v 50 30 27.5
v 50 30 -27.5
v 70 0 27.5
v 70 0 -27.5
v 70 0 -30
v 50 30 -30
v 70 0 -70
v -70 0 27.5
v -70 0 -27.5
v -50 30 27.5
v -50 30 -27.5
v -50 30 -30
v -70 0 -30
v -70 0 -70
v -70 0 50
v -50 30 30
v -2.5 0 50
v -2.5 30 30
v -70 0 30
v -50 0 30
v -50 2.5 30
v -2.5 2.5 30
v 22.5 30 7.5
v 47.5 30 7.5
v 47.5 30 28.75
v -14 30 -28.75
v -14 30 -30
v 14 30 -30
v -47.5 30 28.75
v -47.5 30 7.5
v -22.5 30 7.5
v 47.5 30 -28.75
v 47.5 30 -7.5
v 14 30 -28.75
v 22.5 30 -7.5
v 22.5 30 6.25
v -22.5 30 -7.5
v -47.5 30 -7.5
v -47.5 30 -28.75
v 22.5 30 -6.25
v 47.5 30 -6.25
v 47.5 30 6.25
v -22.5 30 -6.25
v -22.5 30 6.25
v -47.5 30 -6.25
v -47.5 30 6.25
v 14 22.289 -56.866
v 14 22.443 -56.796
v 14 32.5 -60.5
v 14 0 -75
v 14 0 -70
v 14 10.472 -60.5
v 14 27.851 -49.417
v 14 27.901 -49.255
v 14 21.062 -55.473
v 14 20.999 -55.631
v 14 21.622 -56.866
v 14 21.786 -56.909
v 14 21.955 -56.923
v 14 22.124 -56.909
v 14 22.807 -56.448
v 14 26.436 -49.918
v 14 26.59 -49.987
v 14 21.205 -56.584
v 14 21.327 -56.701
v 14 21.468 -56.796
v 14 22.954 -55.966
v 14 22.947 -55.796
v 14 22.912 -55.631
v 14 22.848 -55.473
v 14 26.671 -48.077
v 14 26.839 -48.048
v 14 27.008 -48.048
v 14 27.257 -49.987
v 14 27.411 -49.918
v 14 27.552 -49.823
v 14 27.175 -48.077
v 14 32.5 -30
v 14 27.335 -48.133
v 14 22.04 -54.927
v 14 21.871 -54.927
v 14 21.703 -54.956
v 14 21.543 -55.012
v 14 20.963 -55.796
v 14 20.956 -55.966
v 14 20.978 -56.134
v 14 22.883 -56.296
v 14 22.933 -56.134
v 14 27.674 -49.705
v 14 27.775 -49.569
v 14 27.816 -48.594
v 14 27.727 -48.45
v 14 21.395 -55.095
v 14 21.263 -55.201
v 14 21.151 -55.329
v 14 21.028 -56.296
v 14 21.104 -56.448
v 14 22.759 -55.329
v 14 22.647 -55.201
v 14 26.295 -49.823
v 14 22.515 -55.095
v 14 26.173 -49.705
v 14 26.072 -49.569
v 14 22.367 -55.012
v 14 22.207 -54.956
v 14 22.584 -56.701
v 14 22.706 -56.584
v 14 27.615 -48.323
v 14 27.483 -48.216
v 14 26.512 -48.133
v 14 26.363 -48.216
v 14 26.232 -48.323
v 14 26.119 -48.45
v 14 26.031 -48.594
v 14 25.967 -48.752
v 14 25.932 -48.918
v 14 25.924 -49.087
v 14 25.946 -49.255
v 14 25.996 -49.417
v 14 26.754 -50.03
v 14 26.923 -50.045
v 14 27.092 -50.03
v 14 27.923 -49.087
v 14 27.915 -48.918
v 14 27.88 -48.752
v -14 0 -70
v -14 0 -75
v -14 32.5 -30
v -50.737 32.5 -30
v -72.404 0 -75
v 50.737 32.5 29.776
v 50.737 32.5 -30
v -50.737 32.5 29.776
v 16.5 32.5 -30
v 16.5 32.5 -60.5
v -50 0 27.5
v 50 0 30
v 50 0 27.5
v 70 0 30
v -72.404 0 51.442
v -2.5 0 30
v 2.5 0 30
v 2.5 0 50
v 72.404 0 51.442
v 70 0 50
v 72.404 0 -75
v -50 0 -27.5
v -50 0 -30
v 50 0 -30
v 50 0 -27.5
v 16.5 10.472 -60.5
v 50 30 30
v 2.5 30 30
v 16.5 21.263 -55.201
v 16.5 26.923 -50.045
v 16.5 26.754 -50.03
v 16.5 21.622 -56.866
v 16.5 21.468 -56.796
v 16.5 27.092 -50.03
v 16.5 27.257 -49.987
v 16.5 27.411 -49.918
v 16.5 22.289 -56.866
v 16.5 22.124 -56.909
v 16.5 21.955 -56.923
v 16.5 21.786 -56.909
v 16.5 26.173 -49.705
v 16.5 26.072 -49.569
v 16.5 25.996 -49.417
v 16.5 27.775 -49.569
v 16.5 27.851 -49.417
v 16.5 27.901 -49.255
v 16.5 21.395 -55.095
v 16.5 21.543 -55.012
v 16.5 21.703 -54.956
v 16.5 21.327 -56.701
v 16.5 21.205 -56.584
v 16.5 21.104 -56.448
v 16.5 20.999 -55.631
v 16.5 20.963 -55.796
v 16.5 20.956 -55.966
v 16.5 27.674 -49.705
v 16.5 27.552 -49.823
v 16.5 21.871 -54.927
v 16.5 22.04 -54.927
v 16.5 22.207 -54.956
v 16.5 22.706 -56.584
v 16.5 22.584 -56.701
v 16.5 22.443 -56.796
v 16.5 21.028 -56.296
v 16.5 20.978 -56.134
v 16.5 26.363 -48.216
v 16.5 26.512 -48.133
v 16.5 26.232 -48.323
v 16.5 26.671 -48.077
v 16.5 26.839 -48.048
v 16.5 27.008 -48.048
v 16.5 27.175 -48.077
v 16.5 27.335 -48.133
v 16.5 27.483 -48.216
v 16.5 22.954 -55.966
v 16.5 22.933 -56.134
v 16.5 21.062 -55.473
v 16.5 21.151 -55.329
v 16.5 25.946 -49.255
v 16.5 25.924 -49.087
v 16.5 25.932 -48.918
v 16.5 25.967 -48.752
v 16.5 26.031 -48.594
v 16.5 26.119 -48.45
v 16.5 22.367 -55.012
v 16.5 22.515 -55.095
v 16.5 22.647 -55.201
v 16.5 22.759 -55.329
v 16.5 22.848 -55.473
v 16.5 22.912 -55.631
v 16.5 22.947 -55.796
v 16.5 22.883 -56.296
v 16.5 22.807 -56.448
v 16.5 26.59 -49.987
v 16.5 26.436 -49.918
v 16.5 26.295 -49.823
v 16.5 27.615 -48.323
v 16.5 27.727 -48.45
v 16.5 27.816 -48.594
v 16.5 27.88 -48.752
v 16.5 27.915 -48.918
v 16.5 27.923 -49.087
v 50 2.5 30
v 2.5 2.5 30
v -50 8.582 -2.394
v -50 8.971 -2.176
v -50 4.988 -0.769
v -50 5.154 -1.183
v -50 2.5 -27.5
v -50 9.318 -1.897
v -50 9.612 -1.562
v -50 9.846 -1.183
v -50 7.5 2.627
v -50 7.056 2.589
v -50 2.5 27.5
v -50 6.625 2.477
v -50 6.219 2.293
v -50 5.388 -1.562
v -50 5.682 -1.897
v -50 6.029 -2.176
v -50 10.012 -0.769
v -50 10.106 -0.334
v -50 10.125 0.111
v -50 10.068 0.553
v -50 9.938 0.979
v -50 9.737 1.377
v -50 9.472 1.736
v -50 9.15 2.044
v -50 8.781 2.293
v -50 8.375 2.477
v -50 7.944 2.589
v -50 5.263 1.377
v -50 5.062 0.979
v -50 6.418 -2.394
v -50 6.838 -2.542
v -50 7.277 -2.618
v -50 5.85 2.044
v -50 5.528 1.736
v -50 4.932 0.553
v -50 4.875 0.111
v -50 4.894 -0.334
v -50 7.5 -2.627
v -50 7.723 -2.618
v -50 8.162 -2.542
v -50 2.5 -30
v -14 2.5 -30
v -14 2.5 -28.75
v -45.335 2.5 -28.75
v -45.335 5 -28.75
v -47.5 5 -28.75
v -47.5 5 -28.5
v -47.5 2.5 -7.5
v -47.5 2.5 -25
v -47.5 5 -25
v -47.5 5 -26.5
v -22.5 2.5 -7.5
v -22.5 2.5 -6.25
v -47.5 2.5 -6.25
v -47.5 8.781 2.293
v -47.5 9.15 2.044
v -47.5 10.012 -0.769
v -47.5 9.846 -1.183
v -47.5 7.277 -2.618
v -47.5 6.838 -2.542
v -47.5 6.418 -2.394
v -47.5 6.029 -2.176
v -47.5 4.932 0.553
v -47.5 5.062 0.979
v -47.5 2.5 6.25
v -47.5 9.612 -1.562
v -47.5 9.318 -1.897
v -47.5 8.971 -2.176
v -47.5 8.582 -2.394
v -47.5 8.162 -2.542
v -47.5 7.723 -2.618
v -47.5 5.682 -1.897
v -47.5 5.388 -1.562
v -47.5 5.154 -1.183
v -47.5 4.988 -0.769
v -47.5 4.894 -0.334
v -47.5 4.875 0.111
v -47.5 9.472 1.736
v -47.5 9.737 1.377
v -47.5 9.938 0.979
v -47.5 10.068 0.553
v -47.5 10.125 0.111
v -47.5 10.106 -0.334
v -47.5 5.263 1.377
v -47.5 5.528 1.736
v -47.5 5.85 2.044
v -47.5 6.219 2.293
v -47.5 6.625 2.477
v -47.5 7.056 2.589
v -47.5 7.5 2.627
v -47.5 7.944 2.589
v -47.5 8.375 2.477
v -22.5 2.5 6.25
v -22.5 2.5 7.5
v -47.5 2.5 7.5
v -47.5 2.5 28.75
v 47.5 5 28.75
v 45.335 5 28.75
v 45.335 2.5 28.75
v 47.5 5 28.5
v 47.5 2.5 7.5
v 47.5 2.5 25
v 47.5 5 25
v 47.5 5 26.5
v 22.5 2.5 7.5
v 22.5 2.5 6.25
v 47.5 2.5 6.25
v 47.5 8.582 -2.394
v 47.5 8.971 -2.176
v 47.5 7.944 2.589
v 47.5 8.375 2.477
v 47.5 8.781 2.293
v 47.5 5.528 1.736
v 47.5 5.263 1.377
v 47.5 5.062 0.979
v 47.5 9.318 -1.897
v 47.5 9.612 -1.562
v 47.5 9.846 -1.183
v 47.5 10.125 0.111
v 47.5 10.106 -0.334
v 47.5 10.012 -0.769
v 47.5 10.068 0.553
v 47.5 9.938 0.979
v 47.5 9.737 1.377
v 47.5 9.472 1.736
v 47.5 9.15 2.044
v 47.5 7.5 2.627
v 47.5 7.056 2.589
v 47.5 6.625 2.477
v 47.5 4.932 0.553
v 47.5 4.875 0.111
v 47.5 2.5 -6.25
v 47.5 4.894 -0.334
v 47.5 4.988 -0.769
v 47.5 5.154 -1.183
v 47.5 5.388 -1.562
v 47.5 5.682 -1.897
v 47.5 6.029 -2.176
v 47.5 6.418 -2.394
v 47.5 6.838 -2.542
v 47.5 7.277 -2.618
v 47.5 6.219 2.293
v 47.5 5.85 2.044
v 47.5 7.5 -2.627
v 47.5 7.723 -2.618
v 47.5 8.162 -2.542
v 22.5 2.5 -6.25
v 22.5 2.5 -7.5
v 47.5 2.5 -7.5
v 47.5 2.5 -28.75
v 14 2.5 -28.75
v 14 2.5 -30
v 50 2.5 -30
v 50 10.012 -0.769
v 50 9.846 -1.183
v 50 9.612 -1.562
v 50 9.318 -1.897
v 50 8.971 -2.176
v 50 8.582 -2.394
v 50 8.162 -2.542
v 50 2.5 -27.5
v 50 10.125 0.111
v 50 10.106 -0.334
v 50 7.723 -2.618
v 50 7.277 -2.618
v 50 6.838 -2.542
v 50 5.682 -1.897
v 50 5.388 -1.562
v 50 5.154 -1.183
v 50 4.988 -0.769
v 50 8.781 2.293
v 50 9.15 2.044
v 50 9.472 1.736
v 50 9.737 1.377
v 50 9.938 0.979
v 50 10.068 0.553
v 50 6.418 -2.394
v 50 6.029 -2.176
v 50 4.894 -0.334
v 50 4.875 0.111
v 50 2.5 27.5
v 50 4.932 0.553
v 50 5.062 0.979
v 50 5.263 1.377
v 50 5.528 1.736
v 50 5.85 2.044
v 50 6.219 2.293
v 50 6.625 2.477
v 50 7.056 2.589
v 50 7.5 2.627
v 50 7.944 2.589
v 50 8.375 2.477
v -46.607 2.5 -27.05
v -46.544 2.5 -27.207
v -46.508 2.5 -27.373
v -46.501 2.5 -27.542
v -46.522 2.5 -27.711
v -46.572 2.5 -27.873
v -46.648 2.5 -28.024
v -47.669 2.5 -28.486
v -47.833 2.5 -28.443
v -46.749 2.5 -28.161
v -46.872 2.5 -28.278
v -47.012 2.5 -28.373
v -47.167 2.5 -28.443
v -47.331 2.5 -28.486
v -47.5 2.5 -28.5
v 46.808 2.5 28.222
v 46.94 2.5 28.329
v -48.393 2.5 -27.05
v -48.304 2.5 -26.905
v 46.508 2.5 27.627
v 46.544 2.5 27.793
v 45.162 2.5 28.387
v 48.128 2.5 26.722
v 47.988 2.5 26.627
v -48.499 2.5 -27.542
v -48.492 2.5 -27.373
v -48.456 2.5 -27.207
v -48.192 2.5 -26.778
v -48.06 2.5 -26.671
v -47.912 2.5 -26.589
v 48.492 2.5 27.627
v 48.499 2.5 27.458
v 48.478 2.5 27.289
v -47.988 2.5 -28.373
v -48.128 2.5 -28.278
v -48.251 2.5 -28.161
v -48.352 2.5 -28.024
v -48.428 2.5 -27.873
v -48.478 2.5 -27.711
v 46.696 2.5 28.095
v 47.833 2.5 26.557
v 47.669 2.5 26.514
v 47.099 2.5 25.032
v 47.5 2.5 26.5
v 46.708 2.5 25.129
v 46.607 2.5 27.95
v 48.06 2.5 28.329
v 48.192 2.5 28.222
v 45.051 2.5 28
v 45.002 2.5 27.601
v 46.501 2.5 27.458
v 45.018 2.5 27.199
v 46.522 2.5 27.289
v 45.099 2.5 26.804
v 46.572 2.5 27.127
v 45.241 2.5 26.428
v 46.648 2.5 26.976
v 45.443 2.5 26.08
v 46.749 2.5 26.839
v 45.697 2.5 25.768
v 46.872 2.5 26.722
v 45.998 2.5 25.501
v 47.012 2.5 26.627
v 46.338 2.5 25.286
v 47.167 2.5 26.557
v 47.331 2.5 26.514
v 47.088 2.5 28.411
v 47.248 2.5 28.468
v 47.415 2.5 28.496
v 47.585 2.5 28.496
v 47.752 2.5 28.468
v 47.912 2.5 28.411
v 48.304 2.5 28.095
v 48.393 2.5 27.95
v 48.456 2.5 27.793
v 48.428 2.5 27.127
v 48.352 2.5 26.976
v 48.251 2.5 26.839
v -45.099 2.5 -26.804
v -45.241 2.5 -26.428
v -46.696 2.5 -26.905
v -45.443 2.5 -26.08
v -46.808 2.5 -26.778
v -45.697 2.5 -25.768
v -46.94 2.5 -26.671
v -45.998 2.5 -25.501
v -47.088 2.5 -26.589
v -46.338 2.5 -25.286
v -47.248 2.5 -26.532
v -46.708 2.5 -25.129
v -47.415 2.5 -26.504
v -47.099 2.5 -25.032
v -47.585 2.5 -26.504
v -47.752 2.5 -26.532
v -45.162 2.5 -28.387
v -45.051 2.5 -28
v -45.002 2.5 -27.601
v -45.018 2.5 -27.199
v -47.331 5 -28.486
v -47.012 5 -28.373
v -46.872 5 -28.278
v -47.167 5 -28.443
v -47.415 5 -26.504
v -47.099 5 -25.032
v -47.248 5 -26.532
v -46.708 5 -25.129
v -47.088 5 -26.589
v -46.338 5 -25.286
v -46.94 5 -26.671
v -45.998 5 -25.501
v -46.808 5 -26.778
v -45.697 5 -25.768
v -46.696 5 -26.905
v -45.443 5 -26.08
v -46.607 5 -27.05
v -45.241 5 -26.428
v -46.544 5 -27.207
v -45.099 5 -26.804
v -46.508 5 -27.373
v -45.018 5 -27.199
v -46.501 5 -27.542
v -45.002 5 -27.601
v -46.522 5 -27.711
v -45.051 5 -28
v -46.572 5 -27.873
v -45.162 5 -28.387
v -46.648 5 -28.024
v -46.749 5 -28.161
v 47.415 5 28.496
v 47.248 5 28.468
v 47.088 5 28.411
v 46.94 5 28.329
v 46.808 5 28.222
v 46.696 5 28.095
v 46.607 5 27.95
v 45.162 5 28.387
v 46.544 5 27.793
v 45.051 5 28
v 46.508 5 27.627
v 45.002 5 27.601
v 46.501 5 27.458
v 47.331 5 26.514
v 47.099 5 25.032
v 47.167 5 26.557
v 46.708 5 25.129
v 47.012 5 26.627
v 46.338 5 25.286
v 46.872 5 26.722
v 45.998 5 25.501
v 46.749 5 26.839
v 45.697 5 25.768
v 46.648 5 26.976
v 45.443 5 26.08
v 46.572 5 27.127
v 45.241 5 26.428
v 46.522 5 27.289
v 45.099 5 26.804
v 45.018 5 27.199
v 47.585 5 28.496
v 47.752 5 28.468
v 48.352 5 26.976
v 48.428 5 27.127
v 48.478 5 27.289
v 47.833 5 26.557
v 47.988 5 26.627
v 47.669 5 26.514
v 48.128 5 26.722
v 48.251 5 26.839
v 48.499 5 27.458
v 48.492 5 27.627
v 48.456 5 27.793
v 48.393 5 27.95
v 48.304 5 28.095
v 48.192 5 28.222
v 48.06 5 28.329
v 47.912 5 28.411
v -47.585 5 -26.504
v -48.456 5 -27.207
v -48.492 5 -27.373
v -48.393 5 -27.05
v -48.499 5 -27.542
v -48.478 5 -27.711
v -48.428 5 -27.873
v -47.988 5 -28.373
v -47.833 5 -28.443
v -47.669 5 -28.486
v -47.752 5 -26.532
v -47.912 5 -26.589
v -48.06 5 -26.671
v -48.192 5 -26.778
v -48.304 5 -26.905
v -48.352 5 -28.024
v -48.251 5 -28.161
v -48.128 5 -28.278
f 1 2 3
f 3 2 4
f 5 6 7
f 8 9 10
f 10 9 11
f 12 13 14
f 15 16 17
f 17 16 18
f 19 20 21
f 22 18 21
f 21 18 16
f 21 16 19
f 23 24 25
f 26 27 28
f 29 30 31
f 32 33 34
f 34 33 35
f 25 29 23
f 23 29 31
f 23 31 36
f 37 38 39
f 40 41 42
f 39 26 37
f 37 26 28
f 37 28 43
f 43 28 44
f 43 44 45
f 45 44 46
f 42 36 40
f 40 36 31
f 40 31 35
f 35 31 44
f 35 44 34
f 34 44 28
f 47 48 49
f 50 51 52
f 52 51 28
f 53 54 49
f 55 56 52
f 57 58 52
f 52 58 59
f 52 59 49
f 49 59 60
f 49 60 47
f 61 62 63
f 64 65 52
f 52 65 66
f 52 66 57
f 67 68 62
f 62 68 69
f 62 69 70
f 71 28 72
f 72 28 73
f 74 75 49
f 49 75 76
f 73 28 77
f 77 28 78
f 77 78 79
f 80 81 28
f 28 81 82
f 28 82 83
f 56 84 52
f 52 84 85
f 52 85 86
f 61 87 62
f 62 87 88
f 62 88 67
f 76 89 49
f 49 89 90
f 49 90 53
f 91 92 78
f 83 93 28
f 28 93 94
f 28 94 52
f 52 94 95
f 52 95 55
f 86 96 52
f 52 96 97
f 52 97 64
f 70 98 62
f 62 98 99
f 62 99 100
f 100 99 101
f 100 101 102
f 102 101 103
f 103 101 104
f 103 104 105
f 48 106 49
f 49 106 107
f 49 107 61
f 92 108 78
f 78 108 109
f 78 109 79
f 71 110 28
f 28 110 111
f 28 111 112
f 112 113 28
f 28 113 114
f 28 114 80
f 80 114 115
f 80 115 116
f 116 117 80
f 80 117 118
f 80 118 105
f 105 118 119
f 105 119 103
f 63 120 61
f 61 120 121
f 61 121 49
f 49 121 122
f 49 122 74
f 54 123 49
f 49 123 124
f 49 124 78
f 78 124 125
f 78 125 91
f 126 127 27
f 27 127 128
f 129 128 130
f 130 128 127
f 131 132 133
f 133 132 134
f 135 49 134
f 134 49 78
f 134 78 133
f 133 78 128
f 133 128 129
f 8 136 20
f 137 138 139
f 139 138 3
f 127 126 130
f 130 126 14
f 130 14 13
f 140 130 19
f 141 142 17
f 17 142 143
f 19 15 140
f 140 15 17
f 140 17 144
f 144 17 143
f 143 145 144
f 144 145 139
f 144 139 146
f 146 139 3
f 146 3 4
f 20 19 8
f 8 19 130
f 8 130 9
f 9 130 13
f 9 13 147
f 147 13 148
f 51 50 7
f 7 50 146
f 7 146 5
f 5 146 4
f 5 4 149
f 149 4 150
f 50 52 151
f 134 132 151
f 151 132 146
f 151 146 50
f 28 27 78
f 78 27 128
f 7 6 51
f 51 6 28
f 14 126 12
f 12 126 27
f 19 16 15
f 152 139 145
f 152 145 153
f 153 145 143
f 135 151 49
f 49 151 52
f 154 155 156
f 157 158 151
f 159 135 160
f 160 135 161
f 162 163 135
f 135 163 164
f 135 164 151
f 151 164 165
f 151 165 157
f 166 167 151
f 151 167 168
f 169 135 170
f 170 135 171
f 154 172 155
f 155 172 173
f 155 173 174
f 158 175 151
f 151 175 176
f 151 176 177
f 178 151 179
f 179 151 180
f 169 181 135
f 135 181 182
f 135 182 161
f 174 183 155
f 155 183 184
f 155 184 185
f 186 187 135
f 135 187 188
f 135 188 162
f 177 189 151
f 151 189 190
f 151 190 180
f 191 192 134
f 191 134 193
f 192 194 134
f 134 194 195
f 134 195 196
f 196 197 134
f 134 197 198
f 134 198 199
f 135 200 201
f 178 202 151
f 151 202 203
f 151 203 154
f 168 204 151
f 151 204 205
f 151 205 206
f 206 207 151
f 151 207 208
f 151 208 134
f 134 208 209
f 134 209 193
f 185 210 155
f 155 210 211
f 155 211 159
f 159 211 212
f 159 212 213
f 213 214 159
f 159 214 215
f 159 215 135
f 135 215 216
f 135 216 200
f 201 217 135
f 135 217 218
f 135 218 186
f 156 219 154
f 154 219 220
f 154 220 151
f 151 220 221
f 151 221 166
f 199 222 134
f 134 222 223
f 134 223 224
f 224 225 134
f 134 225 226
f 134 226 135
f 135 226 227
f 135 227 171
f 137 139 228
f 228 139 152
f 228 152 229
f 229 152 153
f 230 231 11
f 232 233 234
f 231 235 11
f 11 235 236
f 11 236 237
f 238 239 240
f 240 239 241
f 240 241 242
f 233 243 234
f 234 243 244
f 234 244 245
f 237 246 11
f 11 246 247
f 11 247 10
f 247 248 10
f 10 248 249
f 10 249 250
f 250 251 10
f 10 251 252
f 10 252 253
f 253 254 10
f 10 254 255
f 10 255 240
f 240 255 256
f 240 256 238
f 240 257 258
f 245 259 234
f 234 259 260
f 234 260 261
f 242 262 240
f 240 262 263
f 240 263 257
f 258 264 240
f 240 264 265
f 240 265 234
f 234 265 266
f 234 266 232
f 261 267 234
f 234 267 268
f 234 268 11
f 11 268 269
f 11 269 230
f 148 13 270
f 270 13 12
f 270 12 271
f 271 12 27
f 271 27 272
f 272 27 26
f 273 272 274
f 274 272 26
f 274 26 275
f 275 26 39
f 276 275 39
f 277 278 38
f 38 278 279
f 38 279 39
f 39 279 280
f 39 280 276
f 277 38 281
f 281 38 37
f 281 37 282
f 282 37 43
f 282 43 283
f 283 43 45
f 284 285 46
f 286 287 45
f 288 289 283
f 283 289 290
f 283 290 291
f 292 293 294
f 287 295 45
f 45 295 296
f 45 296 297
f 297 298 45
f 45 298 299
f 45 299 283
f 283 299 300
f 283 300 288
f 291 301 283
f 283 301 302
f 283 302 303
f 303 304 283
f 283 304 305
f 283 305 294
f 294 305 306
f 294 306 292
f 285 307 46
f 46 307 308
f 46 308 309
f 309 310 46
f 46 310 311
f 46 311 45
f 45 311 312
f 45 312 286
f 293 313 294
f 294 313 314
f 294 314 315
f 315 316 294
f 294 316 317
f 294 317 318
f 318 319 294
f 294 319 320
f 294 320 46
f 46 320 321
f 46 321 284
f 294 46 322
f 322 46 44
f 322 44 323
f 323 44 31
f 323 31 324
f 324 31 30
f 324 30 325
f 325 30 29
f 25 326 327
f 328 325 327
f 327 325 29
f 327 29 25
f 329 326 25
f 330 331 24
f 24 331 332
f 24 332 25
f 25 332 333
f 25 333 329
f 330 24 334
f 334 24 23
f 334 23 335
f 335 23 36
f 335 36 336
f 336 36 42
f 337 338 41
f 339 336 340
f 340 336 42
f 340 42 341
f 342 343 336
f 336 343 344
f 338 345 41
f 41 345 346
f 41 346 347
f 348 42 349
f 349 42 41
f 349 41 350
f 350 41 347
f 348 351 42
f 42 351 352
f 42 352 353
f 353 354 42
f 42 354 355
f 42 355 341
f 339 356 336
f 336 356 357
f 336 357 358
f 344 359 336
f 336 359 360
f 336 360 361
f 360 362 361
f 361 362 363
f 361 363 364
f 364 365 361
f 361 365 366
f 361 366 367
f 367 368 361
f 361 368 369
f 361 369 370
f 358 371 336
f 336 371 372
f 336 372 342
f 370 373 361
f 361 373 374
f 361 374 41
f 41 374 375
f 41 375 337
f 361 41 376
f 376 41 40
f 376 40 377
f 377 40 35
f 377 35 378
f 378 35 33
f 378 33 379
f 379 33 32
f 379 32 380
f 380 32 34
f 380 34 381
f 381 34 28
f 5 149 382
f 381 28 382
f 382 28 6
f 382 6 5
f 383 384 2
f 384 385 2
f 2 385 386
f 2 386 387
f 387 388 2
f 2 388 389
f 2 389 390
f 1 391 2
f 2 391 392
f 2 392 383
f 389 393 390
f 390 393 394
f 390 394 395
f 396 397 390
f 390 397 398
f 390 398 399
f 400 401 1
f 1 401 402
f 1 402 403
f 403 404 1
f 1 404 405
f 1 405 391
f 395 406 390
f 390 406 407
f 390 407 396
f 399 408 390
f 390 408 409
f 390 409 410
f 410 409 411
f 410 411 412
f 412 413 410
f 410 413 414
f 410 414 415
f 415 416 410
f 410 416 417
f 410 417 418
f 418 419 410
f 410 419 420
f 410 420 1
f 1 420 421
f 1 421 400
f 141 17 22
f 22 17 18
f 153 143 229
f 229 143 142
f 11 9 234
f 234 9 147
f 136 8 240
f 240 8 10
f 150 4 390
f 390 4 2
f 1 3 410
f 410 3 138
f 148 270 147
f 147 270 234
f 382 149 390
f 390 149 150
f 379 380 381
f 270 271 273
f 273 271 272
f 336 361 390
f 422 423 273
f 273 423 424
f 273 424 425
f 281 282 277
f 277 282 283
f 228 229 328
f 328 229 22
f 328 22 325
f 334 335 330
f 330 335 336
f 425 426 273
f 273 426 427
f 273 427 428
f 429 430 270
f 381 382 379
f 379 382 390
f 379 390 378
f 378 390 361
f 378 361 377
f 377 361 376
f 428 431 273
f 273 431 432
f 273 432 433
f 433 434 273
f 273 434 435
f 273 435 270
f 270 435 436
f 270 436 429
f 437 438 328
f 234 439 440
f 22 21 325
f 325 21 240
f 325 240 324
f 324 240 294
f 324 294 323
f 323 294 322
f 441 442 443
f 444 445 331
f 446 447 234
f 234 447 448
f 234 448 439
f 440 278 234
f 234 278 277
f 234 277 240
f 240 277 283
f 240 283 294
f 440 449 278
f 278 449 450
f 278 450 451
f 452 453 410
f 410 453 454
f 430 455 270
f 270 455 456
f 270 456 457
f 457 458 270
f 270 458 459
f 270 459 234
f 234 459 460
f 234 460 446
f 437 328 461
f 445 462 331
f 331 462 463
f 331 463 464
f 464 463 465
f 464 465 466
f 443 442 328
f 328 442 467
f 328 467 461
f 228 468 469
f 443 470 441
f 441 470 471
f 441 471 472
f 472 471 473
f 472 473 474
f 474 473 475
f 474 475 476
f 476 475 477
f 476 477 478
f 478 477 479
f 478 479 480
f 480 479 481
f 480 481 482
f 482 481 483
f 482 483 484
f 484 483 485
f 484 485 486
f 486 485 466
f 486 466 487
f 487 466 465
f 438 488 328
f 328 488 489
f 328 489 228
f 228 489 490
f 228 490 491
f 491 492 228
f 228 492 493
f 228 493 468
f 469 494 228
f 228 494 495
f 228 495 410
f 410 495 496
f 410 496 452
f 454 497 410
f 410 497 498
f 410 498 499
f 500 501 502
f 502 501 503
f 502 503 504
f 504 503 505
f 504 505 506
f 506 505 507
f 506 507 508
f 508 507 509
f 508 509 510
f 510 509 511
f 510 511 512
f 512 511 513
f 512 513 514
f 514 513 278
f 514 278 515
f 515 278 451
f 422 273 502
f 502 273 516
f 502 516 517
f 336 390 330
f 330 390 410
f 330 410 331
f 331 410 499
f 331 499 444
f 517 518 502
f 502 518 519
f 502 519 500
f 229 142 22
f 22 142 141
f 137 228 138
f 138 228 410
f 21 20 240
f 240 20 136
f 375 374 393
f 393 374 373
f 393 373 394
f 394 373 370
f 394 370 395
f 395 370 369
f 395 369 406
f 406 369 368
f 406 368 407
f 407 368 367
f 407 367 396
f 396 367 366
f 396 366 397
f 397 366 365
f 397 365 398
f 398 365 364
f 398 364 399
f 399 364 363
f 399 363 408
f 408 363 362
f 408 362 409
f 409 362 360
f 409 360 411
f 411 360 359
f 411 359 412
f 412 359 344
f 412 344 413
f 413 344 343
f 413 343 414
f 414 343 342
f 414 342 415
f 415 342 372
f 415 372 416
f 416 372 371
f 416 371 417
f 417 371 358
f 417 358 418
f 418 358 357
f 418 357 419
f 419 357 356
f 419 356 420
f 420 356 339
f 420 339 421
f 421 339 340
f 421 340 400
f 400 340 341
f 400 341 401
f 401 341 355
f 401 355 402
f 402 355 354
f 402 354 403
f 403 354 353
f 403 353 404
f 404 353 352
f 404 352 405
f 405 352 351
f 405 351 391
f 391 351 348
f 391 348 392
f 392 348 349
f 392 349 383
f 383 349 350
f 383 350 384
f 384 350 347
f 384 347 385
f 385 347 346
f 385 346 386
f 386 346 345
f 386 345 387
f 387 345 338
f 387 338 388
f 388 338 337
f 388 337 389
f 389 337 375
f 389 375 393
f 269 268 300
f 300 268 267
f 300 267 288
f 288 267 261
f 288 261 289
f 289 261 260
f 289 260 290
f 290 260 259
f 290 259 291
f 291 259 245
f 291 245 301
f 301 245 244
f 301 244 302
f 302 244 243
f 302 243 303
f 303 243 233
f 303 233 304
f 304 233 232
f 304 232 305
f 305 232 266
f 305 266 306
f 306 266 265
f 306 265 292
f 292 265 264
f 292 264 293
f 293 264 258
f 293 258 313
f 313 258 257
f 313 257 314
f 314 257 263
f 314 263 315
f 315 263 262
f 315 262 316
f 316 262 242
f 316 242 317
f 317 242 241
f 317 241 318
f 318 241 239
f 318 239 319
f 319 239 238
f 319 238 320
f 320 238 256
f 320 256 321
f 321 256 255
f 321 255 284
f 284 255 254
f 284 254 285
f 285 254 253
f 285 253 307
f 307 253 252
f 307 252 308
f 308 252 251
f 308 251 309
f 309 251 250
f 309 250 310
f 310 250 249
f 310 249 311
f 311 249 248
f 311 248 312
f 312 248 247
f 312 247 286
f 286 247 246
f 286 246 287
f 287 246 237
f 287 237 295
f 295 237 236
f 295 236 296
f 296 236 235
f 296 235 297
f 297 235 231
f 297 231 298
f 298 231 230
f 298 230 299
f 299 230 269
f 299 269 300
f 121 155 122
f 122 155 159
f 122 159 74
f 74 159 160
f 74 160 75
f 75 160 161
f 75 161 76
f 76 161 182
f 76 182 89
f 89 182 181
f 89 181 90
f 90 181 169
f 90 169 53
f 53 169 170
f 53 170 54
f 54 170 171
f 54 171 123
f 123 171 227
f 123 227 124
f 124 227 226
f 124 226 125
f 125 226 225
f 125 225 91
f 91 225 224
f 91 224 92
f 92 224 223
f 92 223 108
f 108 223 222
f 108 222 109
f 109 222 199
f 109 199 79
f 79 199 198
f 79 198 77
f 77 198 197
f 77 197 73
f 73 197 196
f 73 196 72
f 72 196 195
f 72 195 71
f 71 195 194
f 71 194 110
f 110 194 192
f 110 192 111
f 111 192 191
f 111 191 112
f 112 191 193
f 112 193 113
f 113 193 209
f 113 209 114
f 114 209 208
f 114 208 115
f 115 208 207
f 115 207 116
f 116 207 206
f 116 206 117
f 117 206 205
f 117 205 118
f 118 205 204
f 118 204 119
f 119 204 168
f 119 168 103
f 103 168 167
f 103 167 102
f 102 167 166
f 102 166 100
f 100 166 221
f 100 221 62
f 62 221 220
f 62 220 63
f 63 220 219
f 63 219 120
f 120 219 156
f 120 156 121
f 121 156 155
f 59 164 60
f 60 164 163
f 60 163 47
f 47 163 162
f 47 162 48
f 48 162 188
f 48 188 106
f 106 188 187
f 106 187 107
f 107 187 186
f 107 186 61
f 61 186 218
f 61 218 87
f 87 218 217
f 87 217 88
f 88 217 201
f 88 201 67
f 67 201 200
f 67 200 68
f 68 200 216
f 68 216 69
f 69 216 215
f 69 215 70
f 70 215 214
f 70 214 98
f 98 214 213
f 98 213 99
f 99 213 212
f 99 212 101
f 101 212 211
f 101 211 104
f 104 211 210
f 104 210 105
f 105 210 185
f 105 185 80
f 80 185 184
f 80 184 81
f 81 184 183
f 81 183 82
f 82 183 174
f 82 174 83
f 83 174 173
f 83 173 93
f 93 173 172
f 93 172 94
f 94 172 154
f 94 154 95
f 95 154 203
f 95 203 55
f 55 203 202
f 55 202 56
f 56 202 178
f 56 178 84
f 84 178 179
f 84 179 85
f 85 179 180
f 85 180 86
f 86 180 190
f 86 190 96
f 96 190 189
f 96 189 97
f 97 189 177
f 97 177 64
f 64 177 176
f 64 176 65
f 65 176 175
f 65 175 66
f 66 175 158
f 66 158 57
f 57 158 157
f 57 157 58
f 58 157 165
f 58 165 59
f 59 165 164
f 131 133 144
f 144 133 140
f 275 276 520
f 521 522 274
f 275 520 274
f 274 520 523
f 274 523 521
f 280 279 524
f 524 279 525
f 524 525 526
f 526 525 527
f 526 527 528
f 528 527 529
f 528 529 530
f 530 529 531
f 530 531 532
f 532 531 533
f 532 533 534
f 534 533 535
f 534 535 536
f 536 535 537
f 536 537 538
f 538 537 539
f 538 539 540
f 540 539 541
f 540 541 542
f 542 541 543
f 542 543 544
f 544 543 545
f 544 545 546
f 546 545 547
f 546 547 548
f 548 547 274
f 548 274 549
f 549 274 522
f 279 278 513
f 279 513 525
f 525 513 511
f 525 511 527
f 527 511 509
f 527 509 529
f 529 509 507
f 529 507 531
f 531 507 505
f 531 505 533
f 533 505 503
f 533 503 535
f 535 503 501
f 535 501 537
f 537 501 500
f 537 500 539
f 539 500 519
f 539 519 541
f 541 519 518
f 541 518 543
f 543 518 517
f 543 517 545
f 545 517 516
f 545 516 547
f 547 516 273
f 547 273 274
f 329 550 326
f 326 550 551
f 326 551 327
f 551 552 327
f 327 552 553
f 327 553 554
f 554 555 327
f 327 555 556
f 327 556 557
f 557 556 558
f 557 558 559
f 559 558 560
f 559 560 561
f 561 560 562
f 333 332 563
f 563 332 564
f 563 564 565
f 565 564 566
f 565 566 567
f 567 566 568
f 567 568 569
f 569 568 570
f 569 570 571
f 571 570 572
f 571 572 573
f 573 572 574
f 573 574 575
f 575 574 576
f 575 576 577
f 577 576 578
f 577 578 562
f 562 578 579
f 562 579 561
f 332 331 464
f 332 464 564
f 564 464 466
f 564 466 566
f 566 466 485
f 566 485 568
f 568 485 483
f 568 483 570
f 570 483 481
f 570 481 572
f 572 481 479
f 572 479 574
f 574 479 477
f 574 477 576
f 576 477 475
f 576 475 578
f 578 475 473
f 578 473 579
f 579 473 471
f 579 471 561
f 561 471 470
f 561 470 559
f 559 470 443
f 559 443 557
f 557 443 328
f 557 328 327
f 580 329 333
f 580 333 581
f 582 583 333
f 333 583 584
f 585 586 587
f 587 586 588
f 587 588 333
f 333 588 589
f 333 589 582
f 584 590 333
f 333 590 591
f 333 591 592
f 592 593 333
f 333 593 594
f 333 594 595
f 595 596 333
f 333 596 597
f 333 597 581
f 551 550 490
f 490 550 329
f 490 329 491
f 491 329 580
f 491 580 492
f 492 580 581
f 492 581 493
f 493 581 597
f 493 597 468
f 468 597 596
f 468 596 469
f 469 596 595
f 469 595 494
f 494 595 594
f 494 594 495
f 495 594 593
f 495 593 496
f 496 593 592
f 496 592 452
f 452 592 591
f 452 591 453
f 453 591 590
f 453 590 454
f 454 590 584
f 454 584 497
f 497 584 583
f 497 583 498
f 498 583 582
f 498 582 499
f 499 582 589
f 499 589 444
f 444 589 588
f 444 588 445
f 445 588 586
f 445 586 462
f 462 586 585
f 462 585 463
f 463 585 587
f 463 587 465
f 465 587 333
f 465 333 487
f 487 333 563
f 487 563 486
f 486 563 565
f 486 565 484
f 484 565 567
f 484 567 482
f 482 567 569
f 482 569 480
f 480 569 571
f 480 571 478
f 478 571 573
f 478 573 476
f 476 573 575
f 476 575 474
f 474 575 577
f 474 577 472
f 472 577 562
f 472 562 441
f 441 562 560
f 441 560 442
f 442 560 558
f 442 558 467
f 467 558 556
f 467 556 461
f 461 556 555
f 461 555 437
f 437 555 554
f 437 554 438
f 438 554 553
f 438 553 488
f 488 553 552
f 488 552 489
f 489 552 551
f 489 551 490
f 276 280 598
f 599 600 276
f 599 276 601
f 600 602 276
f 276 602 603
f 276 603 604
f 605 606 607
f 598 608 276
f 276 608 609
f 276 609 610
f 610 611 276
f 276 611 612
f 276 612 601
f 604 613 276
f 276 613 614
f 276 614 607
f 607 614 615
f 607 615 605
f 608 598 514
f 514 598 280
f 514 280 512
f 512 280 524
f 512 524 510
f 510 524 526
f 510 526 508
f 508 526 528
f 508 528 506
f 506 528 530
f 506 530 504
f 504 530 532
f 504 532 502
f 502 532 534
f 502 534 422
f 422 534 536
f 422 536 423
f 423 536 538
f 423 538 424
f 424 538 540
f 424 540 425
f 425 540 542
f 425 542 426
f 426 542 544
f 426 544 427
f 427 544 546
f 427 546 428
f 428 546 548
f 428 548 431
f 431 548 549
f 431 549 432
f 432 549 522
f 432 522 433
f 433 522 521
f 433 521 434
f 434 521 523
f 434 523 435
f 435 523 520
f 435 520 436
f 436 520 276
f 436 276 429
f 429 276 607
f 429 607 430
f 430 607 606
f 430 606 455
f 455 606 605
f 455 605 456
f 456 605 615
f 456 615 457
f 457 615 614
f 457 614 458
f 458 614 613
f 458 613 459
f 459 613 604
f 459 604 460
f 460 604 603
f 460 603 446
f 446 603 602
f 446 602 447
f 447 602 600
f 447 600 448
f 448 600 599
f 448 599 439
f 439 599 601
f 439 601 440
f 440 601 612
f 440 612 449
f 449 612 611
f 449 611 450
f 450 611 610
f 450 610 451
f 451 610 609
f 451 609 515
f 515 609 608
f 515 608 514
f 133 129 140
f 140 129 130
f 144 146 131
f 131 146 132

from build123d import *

# Parameters (mm, degrees)
CUT_EXTRUDE3_START      = -32.5
SKETCH7_W               = 100
SKETCH7_H               = 60
CUT_EXTRUDE3_DEPTH      = 30
CUT_EXTRUDE6_DEPTH      = 14
CUT_EXTRUDE6_DEPTH_BACK = 14
BOSS_EXTRUDE1_DEPTH     = 2.5
BOSS_EXTRUDE2_DEPTH     = 30
BOSS_EXTRUDE3_START     = -2.5
BOSS_EXTRUDE3_DEPTH     = 5
BOSS_EXTRUDE4_START     = -30
BOSS_EXTRUDE4_DEPTH     = 2.5
BOSS_EXTRUDE4_START_2   = 27.5
BOSS_EXTRUDE4_2_DEPTH   = 2.5
BOSS_EXTRUDE5_START     = -30
BOSS_EXTRUDE5_DEPTH     = 2.5
BOSS_EXTRUDE5_START_2   = 27.5
BOSS_EXTRUDE5_2_DEPTH   = 2.5
SKETCH20_W              = 100
SKETCH20_H              = 60
CUT_EXTRUDE7_DEPTH      = 2.5
CUT_EXTRUDE8_START      = -2.5
SKETCH21_R              = 2.627
CUT_EXTRUDE8_DEPTH      = 100
SKETCH13_R              = 1
CUT_EXTRUDE9_DEPTH      = 2.5
CUT_EXTRUDE11_START     = -1.2
SKETCH23_W              = 181.319522923
SKETCH23_H              = 53.809633396
CUT_EXTRUDE11_DEPTH     = 4
SKETCH24_R              = 2.5
BOSS_EXTRUDE6_DEPTH     = 2.5
SKETCH25_R              = 1
CUT_EXTRUDE12_DEPTH     = 2.5
CUT_EXTRUDE13_START     = -2
SKETCH26_W              = 145.47086515
SKETCH26_H              = 58.938684545
CUT_EXTRUDE13_DEPTH     = 2.5
CUT_EXTRUDE14_START     = -2
SKETCH27_W              = 157.368673289
SKETCH27_H              = 83.270010287
CUT_EXTRUDE14_DEPTH     = 2.5


# Read off the part's stored shape, not the designer's step: Boss-Extrude3, Boss-Extrude4, Boss-Extrude5
with BuildPart() as part:
    # Sketch1 → Loft1 section 0
    with BuildSketch(Plane(origin=(0, 0, 0), x_dir=(1, 0, 0), z_dir=(0, 1, 0))):
        with BuildLine():
            Line((-75, -55), (-75, 75))
            Line((-75, 75), (75, 75))
            Line((75, 75), (75, -55))
            Line((75, -55), (-75, -55))
        make_face()
    # Sketch2 → Loft1 section 1
    with BuildSketch(Plane(origin=(0, 32.5, 0), x_dir=(1, 0, 0), z_dir=(0, 1, 0))):
        with BuildLine():
            Line((-52.5, -30), (52.5, -30))
            Line((52.5, -30), (52.5, 30))
            Line((52.5, 30), (-52.5, 30))
            Line((-52.5, 30), (-52.5, -30))
        make_face()
    loft()

    # Sketch7 → Cut-Extrude3 (cut)
    with BuildSketch(Plane(origin=(0, 32.5, 0), x_dir=(1, 0, 0), z_dir=(0, 1, 0)).offset(CUT_EXTRUDE3_START)):
        Rectangle(SKETCH7_W, SKETCH7_H)
    extrude(amount=CUT_EXTRUDE3_DEPTH, mode=Mode.SUBTRACT)

    # Sketch8 → Cut-Extrude6 (cut, two sides: drawn at the far end of the back side and taken through both)
    with BuildSketch(Plane(origin=(0, 0, 0), x_dir=(0, 0, -1), z_dir=(1, 0, 0)).offset(-CUT_EXTRUDE6_DEPTH_BACK)):
        Polygon((30, 35.583833793), (79.269923714, 0), (30, 0), align=None)
    extrude(amount=CUT_EXTRUDE6_DEPTH + CUT_EXTRUDE6_DEPTH_BACK, mode=Mode.SUBTRACT)

    # Sketch11 → Cut-Loft1 section 0
    with BuildSketch(Plane.XZ.offset(-30)):
        with BuildLine():
            Line((-50, 30), (50, 30))
            Line((50, 30), (50, -30))
            Line((50, -30), (-50, -30))
            Line((-50, -30), (-50, 30))
        make_face()
    # Sketch9 → Cut-Loft1 section 1
    with BuildSketch(Plane.XZ):
        with BuildLine():
            Line((-70, 50), (70, 50))
            Line((70, 50), (70, -70))
            Line((70, -70), (-70, -70))
            Line((-70, -70), (-70, 50))
        make_face()
    loft(mode=Mode.SUBTRACT)

    # Sketch12 → Boss-Extrude1 (add)
    with BuildSketch(Plane.ZY.offset(-14)):
        Polygon((-60.5, 32.5), (-60.5, 10.472222222), (-30, 32.5), align=None)
    extrude(amount=-BOSS_EXTRUDE1_DEPTH)

    # Sketch14 → Boss-Extrude2 (add)
    with BuildSketch(Plane.XZ.offset(-30)):
        Polygon((-50, -30), (-50, 30), (50, 30), (50, -30), (14, -30), (14, -28.75), (47.5, -28.75), (47.5, -7.5), (22.5, -7.5), (22.5, -6.25), (47.5, -6.25), (47.5, 6.25), (22.5, 6.25), (22.5, 7.5), (47.5, 7.5), (47.5, 28.75), (-47.5, 28.75), (-47.5, 7.5), (-22.5, 7.5), (-22.5, 6.25), (-47.5, 6.25), (-47.5, -6.25), (-22.5, -6.25), (-22.5, -7.5), (-47.5, -7.5), (-47.5, -28.75), (-14, -28.75), (-14, -30), (-47.5, -30), align=None)
    extrude(amount=BOSS_EXTRUDE2_DEPTH)

    # Boss-Extrude3 outline → Boss-Extrude3 (add)
    with BuildSketch(Plane.YZ.offset(BOSS_EXTRUDE3_START)):
        Polygon((30, 30), (0, 50), (0, 30), align=None)
    extrude(amount=BOSS_EXTRUDE3_DEPTH)

    # Boss-Extrude4 outline → Boss-Extrude4 (add)
    with BuildSketch(Plane.XY.offset(BOSS_EXTRUDE4_START)):
        Polygon((-50, 30), (-70, 0), (-50, 0), align=None)
    extrude(amount=BOSS_EXTRUDE4_DEPTH)

    # Boss-Extrude4 2 outline → Boss-Extrude4 2 (add)
    with BuildSketch(Plane.XY.offset(BOSS_EXTRUDE4_START_2)):
        Polygon((-50, 30), (-70, 0), (-50, 0), align=None)
    extrude(amount=BOSS_EXTRUDE4_2_DEPTH)

    # Boss-Extrude5 outline → Boss-Extrude5 (add)
    with BuildSketch(Plane.XY.offset(BOSS_EXTRUDE5_START)):
        Polygon((50, 30), (50, 0), (70, 0), align=None)
    extrude(amount=BOSS_EXTRUDE5_DEPTH)

    # Boss-Extrude5 2 outline → Boss-Extrude5 2 (add)
    with BuildSketch(Plane.XY.offset(BOSS_EXTRUDE5_START_2)):
        Polygon((50, 30), (50, 0), (70, 0), align=None)
    extrude(amount=BOSS_EXTRUDE5_2_DEPTH)

    # Sketch20 → Cut-Extrude7 (cut)
    with BuildSketch(Plane.XZ):
        Rectangle(SKETCH20_W, SKETCH20_H)
    extrude(amount=-CUT_EXTRUDE7_DEPTH, mode=Mode.SUBTRACT)

    # Sketch21 → Cut-Extrude8 (cut)
    with BuildSketch(Plane(origin=(-47.5, 0, 0), x_dir=(0, 0, -1), z_dir=(1, 0, 0)).offset(CUT_EXTRUDE8_START)):
        with Locations(Location((0, 7.5, 0), (0, 0, 180))):
            Circle(SKETCH21_R)
    extrude(amount=CUT_EXTRUDE8_DEPTH, mode=Mode.SUBTRACT)

    # Sketch13 → Cut-Extrude9 (cut)
    with BuildSketch(Plane(origin=(16.5, 0, 0), x_dir=(0, 0, -1), z_dir=(1, 0, 0))):
        with Locations((55.923446724, 21.955394633)):
            Circle(SKETCH13_R)
        with Locations((49.044605367, 26.923446724)):
            Circle(SKETCH13_R)
    extrude(amount=-CUT_EXTRUDE9_DEPTH, mode=Mode.SUBTRACT)

    # Sketch23 → Cut-Extrude11 (cut)
    with BuildSketch(Plane(origin=(0, 23.076923077, 34.615384615), x_dir=(-1, 0, 0), z_dir=(0, -0.5547001962252286, -0.8320502943378442)).offset(CUT_EXTRUDE11_START)):
        with Locations((-1.646246513, -10.343211106)):
            Rectangle(SKETCH23_W, SKETCH23_H)
    extrude(amount=-CUT_EXTRUDE11_DEPTH, mode=Mode.SUBTRACT)

    # Sketch24 → Boss-Extrude6 (add)
    with BuildSketch(Plane.XZ.offset(-2.5)):
        with Locations((-47.5, -27.5)):
            Circle(SKETCH24_R)
        with Locations((47.5, 27.5)):
            Circle(SKETCH24_R)
    extrude(amount=-BOSS_EXTRUDE6_DEPTH)

    # Sketch25 → Cut-Extrude12 (cut)
    with BuildSketch(Plane.XZ.offset(-2.5)):
        with Locations(Location((-47.5, -27.5, 0), (0, 0, 270))):
            Circle(SKETCH25_R)
        with Locations(Location((47.5, 27.5, 0), (0, 0, 270))):
            Circle(SKETCH25_R)
    extrude(amount=-CUT_EXTRUDE12_DEPTH, mode=Mode.SUBTRACT)

    # Sketch26 → Cut-Extrude13 (cut)
    with BuildSketch(Plane(origin=(-48.461538462, 32.307692308, 0), x_dir=(0, 0, -1), z_dir=(0.8320502943378436, -0.5547001962252295, 0)).offset(CUT_EXTRUDE13_START)):
        with Locations((11.121253107, -16.230406727)):
            Rectangle(SKETCH26_W, SKETCH26_H)
    extrude(amount=-CUT_EXTRUDE13_DEPTH, mode=Mode.SUBTRACT)

    # Sketch27 → Cut-Extrude14 (cut)
    with BuildSketch(Plane(origin=(48.461538462, 32.307692308, 0), x_dir=(0, 0, 1), z_dir=(-0.8320502943378442, -0.5547001962252287, 0)).offset(CUT_EXTRUDE14_START)):
        with Locations((-8.576197042, -8.380711465)):
            Rectangle(SKETCH27_W, SKETCH27_H)
    extrude(amount=-CUT_EXTRUDE14_DEPTH, mode=Mode.SUBTRACT)


solid = part.part
